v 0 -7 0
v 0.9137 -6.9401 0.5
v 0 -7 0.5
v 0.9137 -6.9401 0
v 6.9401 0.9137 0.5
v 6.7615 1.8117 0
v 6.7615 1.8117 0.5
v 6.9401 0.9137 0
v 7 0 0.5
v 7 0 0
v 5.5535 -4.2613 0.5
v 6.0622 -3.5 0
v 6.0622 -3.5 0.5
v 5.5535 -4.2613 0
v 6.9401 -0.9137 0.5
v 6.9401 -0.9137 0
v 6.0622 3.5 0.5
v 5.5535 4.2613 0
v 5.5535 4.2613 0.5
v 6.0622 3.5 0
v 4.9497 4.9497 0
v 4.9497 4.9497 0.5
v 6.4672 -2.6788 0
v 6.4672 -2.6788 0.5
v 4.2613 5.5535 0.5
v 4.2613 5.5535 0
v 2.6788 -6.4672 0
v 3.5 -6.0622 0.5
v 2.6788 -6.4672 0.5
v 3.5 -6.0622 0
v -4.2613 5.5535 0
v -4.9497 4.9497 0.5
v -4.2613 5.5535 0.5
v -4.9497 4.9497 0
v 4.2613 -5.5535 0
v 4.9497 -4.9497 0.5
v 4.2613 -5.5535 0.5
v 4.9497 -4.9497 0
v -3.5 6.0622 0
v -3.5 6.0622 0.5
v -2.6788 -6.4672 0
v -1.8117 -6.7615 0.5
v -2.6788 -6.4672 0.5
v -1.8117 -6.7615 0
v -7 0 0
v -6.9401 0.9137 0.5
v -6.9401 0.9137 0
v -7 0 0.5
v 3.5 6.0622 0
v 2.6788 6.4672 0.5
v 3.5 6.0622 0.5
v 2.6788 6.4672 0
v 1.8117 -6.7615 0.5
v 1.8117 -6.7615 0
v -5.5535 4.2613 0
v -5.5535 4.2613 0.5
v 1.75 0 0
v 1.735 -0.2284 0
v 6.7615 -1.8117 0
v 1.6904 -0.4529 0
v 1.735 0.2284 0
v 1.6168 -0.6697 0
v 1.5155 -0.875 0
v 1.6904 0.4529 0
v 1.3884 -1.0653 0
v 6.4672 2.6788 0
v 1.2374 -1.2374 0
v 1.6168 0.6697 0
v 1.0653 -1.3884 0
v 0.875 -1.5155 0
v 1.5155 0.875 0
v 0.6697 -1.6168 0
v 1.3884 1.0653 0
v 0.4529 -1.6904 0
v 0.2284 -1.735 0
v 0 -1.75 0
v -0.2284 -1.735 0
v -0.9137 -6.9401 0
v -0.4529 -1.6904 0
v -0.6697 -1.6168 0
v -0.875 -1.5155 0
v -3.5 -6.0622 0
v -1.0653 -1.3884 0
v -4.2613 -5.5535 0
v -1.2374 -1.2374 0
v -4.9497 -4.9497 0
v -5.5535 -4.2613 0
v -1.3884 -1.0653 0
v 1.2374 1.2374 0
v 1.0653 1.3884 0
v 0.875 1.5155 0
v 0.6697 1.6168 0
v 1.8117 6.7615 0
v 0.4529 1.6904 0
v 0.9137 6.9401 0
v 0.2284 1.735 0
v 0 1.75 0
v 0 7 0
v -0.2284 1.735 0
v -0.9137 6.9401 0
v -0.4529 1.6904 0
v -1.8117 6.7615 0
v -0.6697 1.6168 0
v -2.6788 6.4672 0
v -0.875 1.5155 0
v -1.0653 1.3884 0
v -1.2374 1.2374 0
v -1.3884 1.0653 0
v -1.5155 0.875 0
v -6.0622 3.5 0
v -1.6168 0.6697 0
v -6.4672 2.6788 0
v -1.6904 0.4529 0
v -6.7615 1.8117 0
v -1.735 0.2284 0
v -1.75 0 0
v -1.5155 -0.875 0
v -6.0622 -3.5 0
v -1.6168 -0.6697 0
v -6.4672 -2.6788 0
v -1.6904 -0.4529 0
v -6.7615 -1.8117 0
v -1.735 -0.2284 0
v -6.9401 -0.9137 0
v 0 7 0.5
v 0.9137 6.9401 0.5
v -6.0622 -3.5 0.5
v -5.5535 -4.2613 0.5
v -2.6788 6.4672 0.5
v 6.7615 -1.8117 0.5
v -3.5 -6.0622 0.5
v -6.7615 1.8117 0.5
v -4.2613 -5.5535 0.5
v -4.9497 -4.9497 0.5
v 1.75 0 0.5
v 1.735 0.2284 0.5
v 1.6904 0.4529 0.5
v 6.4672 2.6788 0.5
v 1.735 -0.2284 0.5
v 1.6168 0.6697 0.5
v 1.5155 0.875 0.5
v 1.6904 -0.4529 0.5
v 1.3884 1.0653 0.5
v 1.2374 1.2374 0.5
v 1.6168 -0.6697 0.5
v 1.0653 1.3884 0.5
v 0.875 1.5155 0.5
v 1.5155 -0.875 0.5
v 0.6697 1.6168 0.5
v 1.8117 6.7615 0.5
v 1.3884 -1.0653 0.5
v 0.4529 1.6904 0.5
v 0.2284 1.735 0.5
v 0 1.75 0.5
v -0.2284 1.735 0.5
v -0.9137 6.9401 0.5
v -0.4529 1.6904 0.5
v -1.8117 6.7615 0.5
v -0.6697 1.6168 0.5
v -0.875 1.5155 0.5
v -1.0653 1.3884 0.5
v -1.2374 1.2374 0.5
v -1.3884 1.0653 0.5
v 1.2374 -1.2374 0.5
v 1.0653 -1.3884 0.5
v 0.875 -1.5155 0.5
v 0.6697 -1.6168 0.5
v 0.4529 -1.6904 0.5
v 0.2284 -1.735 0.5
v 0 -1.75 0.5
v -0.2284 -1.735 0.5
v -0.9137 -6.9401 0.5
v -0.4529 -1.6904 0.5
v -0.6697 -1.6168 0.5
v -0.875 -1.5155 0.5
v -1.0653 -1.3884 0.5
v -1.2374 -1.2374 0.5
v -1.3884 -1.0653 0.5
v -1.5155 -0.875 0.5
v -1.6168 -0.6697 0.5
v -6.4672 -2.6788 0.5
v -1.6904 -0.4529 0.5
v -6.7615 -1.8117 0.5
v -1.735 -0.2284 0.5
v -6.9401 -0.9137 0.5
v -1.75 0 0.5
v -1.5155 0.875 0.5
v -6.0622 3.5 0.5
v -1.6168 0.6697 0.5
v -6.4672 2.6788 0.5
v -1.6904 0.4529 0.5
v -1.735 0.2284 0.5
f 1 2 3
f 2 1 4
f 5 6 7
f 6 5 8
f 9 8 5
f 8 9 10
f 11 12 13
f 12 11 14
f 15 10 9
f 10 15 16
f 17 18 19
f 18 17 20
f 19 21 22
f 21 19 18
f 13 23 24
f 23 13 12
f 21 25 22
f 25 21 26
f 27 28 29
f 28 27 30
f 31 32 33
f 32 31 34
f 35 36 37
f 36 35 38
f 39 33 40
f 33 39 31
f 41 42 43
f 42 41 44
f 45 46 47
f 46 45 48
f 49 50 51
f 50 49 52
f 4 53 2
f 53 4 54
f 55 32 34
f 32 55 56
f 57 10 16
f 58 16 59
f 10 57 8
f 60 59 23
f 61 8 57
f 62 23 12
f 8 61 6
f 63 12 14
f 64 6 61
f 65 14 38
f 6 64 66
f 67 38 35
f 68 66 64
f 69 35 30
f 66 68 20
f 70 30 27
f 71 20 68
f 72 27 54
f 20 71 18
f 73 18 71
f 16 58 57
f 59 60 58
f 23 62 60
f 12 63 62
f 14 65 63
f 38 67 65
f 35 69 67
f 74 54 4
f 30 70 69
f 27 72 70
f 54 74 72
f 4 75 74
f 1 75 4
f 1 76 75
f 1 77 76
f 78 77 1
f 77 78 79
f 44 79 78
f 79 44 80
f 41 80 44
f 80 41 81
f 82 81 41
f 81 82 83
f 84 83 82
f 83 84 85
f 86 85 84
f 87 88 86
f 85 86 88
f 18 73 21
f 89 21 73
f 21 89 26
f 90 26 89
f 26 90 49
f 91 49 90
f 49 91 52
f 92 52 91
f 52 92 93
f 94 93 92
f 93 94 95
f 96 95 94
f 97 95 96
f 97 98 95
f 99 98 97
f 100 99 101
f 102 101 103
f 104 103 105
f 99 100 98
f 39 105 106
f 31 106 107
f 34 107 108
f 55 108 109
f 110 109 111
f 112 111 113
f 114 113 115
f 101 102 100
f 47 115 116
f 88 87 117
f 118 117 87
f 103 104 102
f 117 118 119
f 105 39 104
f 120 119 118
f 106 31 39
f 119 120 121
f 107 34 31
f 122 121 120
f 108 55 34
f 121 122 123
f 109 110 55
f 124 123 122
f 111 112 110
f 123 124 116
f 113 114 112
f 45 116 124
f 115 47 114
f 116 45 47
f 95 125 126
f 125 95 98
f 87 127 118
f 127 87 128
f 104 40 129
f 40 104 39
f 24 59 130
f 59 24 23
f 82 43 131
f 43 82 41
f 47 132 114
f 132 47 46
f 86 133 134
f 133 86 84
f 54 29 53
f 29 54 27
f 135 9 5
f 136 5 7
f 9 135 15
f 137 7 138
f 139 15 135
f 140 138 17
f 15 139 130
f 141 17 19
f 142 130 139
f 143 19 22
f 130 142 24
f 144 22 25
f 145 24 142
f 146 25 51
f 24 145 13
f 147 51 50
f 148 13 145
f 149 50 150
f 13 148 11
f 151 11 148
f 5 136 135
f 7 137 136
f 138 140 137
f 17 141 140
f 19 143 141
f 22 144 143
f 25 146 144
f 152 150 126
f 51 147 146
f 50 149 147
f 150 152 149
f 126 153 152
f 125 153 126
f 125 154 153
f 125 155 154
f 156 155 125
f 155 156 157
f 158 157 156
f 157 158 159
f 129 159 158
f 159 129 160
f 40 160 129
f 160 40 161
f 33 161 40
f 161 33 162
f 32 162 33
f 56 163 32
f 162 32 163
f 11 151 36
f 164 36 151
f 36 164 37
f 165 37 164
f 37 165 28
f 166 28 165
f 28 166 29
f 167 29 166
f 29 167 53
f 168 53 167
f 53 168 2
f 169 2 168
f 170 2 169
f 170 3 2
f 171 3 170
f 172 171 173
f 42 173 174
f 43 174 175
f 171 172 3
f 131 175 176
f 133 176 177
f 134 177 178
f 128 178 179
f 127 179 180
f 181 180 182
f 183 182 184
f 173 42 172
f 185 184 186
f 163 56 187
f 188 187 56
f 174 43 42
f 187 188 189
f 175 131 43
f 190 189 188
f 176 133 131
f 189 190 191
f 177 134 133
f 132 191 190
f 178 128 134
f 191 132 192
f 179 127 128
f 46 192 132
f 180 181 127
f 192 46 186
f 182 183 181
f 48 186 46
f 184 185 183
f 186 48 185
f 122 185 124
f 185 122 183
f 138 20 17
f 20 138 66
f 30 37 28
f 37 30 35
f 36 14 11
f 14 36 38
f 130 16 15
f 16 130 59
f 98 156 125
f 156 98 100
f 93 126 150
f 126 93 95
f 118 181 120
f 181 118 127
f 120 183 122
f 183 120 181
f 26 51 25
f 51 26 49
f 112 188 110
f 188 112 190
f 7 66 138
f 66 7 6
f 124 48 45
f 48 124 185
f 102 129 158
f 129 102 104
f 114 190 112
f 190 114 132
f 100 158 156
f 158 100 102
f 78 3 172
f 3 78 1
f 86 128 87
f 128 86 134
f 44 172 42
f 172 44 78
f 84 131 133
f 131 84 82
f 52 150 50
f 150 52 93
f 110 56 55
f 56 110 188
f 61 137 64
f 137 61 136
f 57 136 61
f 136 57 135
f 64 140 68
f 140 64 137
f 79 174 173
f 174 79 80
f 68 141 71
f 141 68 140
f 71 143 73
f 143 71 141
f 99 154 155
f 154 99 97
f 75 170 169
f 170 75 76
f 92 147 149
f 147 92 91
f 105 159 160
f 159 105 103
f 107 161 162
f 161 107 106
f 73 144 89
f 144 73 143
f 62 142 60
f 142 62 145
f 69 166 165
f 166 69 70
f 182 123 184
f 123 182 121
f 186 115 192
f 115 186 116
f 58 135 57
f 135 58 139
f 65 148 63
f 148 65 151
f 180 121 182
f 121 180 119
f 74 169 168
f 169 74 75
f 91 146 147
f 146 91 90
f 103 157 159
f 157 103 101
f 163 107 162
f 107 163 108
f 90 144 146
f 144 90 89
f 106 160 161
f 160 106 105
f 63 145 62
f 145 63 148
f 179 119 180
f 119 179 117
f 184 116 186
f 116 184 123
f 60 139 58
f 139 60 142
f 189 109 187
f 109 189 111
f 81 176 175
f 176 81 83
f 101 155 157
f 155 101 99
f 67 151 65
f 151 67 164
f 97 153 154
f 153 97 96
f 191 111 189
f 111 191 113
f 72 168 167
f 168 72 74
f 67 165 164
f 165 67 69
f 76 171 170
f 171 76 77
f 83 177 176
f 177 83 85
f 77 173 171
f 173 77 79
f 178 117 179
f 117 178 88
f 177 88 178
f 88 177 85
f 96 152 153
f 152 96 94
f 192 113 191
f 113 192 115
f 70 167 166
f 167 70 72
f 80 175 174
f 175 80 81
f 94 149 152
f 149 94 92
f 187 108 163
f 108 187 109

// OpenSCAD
// Gen-CS — assembly gap shim, h = run_clear (rotor face -> flange); copper is inside the flanges
include <parameters.scad>;
$fn = 48;
difference() {
    cylinder(d=spacer_pad_od, h=gap_spacer_h);
    translate([0, 0, -0.1]) cylinder(d=spacer_pad_id, h=gap_spacer_h + 0.2);
}
